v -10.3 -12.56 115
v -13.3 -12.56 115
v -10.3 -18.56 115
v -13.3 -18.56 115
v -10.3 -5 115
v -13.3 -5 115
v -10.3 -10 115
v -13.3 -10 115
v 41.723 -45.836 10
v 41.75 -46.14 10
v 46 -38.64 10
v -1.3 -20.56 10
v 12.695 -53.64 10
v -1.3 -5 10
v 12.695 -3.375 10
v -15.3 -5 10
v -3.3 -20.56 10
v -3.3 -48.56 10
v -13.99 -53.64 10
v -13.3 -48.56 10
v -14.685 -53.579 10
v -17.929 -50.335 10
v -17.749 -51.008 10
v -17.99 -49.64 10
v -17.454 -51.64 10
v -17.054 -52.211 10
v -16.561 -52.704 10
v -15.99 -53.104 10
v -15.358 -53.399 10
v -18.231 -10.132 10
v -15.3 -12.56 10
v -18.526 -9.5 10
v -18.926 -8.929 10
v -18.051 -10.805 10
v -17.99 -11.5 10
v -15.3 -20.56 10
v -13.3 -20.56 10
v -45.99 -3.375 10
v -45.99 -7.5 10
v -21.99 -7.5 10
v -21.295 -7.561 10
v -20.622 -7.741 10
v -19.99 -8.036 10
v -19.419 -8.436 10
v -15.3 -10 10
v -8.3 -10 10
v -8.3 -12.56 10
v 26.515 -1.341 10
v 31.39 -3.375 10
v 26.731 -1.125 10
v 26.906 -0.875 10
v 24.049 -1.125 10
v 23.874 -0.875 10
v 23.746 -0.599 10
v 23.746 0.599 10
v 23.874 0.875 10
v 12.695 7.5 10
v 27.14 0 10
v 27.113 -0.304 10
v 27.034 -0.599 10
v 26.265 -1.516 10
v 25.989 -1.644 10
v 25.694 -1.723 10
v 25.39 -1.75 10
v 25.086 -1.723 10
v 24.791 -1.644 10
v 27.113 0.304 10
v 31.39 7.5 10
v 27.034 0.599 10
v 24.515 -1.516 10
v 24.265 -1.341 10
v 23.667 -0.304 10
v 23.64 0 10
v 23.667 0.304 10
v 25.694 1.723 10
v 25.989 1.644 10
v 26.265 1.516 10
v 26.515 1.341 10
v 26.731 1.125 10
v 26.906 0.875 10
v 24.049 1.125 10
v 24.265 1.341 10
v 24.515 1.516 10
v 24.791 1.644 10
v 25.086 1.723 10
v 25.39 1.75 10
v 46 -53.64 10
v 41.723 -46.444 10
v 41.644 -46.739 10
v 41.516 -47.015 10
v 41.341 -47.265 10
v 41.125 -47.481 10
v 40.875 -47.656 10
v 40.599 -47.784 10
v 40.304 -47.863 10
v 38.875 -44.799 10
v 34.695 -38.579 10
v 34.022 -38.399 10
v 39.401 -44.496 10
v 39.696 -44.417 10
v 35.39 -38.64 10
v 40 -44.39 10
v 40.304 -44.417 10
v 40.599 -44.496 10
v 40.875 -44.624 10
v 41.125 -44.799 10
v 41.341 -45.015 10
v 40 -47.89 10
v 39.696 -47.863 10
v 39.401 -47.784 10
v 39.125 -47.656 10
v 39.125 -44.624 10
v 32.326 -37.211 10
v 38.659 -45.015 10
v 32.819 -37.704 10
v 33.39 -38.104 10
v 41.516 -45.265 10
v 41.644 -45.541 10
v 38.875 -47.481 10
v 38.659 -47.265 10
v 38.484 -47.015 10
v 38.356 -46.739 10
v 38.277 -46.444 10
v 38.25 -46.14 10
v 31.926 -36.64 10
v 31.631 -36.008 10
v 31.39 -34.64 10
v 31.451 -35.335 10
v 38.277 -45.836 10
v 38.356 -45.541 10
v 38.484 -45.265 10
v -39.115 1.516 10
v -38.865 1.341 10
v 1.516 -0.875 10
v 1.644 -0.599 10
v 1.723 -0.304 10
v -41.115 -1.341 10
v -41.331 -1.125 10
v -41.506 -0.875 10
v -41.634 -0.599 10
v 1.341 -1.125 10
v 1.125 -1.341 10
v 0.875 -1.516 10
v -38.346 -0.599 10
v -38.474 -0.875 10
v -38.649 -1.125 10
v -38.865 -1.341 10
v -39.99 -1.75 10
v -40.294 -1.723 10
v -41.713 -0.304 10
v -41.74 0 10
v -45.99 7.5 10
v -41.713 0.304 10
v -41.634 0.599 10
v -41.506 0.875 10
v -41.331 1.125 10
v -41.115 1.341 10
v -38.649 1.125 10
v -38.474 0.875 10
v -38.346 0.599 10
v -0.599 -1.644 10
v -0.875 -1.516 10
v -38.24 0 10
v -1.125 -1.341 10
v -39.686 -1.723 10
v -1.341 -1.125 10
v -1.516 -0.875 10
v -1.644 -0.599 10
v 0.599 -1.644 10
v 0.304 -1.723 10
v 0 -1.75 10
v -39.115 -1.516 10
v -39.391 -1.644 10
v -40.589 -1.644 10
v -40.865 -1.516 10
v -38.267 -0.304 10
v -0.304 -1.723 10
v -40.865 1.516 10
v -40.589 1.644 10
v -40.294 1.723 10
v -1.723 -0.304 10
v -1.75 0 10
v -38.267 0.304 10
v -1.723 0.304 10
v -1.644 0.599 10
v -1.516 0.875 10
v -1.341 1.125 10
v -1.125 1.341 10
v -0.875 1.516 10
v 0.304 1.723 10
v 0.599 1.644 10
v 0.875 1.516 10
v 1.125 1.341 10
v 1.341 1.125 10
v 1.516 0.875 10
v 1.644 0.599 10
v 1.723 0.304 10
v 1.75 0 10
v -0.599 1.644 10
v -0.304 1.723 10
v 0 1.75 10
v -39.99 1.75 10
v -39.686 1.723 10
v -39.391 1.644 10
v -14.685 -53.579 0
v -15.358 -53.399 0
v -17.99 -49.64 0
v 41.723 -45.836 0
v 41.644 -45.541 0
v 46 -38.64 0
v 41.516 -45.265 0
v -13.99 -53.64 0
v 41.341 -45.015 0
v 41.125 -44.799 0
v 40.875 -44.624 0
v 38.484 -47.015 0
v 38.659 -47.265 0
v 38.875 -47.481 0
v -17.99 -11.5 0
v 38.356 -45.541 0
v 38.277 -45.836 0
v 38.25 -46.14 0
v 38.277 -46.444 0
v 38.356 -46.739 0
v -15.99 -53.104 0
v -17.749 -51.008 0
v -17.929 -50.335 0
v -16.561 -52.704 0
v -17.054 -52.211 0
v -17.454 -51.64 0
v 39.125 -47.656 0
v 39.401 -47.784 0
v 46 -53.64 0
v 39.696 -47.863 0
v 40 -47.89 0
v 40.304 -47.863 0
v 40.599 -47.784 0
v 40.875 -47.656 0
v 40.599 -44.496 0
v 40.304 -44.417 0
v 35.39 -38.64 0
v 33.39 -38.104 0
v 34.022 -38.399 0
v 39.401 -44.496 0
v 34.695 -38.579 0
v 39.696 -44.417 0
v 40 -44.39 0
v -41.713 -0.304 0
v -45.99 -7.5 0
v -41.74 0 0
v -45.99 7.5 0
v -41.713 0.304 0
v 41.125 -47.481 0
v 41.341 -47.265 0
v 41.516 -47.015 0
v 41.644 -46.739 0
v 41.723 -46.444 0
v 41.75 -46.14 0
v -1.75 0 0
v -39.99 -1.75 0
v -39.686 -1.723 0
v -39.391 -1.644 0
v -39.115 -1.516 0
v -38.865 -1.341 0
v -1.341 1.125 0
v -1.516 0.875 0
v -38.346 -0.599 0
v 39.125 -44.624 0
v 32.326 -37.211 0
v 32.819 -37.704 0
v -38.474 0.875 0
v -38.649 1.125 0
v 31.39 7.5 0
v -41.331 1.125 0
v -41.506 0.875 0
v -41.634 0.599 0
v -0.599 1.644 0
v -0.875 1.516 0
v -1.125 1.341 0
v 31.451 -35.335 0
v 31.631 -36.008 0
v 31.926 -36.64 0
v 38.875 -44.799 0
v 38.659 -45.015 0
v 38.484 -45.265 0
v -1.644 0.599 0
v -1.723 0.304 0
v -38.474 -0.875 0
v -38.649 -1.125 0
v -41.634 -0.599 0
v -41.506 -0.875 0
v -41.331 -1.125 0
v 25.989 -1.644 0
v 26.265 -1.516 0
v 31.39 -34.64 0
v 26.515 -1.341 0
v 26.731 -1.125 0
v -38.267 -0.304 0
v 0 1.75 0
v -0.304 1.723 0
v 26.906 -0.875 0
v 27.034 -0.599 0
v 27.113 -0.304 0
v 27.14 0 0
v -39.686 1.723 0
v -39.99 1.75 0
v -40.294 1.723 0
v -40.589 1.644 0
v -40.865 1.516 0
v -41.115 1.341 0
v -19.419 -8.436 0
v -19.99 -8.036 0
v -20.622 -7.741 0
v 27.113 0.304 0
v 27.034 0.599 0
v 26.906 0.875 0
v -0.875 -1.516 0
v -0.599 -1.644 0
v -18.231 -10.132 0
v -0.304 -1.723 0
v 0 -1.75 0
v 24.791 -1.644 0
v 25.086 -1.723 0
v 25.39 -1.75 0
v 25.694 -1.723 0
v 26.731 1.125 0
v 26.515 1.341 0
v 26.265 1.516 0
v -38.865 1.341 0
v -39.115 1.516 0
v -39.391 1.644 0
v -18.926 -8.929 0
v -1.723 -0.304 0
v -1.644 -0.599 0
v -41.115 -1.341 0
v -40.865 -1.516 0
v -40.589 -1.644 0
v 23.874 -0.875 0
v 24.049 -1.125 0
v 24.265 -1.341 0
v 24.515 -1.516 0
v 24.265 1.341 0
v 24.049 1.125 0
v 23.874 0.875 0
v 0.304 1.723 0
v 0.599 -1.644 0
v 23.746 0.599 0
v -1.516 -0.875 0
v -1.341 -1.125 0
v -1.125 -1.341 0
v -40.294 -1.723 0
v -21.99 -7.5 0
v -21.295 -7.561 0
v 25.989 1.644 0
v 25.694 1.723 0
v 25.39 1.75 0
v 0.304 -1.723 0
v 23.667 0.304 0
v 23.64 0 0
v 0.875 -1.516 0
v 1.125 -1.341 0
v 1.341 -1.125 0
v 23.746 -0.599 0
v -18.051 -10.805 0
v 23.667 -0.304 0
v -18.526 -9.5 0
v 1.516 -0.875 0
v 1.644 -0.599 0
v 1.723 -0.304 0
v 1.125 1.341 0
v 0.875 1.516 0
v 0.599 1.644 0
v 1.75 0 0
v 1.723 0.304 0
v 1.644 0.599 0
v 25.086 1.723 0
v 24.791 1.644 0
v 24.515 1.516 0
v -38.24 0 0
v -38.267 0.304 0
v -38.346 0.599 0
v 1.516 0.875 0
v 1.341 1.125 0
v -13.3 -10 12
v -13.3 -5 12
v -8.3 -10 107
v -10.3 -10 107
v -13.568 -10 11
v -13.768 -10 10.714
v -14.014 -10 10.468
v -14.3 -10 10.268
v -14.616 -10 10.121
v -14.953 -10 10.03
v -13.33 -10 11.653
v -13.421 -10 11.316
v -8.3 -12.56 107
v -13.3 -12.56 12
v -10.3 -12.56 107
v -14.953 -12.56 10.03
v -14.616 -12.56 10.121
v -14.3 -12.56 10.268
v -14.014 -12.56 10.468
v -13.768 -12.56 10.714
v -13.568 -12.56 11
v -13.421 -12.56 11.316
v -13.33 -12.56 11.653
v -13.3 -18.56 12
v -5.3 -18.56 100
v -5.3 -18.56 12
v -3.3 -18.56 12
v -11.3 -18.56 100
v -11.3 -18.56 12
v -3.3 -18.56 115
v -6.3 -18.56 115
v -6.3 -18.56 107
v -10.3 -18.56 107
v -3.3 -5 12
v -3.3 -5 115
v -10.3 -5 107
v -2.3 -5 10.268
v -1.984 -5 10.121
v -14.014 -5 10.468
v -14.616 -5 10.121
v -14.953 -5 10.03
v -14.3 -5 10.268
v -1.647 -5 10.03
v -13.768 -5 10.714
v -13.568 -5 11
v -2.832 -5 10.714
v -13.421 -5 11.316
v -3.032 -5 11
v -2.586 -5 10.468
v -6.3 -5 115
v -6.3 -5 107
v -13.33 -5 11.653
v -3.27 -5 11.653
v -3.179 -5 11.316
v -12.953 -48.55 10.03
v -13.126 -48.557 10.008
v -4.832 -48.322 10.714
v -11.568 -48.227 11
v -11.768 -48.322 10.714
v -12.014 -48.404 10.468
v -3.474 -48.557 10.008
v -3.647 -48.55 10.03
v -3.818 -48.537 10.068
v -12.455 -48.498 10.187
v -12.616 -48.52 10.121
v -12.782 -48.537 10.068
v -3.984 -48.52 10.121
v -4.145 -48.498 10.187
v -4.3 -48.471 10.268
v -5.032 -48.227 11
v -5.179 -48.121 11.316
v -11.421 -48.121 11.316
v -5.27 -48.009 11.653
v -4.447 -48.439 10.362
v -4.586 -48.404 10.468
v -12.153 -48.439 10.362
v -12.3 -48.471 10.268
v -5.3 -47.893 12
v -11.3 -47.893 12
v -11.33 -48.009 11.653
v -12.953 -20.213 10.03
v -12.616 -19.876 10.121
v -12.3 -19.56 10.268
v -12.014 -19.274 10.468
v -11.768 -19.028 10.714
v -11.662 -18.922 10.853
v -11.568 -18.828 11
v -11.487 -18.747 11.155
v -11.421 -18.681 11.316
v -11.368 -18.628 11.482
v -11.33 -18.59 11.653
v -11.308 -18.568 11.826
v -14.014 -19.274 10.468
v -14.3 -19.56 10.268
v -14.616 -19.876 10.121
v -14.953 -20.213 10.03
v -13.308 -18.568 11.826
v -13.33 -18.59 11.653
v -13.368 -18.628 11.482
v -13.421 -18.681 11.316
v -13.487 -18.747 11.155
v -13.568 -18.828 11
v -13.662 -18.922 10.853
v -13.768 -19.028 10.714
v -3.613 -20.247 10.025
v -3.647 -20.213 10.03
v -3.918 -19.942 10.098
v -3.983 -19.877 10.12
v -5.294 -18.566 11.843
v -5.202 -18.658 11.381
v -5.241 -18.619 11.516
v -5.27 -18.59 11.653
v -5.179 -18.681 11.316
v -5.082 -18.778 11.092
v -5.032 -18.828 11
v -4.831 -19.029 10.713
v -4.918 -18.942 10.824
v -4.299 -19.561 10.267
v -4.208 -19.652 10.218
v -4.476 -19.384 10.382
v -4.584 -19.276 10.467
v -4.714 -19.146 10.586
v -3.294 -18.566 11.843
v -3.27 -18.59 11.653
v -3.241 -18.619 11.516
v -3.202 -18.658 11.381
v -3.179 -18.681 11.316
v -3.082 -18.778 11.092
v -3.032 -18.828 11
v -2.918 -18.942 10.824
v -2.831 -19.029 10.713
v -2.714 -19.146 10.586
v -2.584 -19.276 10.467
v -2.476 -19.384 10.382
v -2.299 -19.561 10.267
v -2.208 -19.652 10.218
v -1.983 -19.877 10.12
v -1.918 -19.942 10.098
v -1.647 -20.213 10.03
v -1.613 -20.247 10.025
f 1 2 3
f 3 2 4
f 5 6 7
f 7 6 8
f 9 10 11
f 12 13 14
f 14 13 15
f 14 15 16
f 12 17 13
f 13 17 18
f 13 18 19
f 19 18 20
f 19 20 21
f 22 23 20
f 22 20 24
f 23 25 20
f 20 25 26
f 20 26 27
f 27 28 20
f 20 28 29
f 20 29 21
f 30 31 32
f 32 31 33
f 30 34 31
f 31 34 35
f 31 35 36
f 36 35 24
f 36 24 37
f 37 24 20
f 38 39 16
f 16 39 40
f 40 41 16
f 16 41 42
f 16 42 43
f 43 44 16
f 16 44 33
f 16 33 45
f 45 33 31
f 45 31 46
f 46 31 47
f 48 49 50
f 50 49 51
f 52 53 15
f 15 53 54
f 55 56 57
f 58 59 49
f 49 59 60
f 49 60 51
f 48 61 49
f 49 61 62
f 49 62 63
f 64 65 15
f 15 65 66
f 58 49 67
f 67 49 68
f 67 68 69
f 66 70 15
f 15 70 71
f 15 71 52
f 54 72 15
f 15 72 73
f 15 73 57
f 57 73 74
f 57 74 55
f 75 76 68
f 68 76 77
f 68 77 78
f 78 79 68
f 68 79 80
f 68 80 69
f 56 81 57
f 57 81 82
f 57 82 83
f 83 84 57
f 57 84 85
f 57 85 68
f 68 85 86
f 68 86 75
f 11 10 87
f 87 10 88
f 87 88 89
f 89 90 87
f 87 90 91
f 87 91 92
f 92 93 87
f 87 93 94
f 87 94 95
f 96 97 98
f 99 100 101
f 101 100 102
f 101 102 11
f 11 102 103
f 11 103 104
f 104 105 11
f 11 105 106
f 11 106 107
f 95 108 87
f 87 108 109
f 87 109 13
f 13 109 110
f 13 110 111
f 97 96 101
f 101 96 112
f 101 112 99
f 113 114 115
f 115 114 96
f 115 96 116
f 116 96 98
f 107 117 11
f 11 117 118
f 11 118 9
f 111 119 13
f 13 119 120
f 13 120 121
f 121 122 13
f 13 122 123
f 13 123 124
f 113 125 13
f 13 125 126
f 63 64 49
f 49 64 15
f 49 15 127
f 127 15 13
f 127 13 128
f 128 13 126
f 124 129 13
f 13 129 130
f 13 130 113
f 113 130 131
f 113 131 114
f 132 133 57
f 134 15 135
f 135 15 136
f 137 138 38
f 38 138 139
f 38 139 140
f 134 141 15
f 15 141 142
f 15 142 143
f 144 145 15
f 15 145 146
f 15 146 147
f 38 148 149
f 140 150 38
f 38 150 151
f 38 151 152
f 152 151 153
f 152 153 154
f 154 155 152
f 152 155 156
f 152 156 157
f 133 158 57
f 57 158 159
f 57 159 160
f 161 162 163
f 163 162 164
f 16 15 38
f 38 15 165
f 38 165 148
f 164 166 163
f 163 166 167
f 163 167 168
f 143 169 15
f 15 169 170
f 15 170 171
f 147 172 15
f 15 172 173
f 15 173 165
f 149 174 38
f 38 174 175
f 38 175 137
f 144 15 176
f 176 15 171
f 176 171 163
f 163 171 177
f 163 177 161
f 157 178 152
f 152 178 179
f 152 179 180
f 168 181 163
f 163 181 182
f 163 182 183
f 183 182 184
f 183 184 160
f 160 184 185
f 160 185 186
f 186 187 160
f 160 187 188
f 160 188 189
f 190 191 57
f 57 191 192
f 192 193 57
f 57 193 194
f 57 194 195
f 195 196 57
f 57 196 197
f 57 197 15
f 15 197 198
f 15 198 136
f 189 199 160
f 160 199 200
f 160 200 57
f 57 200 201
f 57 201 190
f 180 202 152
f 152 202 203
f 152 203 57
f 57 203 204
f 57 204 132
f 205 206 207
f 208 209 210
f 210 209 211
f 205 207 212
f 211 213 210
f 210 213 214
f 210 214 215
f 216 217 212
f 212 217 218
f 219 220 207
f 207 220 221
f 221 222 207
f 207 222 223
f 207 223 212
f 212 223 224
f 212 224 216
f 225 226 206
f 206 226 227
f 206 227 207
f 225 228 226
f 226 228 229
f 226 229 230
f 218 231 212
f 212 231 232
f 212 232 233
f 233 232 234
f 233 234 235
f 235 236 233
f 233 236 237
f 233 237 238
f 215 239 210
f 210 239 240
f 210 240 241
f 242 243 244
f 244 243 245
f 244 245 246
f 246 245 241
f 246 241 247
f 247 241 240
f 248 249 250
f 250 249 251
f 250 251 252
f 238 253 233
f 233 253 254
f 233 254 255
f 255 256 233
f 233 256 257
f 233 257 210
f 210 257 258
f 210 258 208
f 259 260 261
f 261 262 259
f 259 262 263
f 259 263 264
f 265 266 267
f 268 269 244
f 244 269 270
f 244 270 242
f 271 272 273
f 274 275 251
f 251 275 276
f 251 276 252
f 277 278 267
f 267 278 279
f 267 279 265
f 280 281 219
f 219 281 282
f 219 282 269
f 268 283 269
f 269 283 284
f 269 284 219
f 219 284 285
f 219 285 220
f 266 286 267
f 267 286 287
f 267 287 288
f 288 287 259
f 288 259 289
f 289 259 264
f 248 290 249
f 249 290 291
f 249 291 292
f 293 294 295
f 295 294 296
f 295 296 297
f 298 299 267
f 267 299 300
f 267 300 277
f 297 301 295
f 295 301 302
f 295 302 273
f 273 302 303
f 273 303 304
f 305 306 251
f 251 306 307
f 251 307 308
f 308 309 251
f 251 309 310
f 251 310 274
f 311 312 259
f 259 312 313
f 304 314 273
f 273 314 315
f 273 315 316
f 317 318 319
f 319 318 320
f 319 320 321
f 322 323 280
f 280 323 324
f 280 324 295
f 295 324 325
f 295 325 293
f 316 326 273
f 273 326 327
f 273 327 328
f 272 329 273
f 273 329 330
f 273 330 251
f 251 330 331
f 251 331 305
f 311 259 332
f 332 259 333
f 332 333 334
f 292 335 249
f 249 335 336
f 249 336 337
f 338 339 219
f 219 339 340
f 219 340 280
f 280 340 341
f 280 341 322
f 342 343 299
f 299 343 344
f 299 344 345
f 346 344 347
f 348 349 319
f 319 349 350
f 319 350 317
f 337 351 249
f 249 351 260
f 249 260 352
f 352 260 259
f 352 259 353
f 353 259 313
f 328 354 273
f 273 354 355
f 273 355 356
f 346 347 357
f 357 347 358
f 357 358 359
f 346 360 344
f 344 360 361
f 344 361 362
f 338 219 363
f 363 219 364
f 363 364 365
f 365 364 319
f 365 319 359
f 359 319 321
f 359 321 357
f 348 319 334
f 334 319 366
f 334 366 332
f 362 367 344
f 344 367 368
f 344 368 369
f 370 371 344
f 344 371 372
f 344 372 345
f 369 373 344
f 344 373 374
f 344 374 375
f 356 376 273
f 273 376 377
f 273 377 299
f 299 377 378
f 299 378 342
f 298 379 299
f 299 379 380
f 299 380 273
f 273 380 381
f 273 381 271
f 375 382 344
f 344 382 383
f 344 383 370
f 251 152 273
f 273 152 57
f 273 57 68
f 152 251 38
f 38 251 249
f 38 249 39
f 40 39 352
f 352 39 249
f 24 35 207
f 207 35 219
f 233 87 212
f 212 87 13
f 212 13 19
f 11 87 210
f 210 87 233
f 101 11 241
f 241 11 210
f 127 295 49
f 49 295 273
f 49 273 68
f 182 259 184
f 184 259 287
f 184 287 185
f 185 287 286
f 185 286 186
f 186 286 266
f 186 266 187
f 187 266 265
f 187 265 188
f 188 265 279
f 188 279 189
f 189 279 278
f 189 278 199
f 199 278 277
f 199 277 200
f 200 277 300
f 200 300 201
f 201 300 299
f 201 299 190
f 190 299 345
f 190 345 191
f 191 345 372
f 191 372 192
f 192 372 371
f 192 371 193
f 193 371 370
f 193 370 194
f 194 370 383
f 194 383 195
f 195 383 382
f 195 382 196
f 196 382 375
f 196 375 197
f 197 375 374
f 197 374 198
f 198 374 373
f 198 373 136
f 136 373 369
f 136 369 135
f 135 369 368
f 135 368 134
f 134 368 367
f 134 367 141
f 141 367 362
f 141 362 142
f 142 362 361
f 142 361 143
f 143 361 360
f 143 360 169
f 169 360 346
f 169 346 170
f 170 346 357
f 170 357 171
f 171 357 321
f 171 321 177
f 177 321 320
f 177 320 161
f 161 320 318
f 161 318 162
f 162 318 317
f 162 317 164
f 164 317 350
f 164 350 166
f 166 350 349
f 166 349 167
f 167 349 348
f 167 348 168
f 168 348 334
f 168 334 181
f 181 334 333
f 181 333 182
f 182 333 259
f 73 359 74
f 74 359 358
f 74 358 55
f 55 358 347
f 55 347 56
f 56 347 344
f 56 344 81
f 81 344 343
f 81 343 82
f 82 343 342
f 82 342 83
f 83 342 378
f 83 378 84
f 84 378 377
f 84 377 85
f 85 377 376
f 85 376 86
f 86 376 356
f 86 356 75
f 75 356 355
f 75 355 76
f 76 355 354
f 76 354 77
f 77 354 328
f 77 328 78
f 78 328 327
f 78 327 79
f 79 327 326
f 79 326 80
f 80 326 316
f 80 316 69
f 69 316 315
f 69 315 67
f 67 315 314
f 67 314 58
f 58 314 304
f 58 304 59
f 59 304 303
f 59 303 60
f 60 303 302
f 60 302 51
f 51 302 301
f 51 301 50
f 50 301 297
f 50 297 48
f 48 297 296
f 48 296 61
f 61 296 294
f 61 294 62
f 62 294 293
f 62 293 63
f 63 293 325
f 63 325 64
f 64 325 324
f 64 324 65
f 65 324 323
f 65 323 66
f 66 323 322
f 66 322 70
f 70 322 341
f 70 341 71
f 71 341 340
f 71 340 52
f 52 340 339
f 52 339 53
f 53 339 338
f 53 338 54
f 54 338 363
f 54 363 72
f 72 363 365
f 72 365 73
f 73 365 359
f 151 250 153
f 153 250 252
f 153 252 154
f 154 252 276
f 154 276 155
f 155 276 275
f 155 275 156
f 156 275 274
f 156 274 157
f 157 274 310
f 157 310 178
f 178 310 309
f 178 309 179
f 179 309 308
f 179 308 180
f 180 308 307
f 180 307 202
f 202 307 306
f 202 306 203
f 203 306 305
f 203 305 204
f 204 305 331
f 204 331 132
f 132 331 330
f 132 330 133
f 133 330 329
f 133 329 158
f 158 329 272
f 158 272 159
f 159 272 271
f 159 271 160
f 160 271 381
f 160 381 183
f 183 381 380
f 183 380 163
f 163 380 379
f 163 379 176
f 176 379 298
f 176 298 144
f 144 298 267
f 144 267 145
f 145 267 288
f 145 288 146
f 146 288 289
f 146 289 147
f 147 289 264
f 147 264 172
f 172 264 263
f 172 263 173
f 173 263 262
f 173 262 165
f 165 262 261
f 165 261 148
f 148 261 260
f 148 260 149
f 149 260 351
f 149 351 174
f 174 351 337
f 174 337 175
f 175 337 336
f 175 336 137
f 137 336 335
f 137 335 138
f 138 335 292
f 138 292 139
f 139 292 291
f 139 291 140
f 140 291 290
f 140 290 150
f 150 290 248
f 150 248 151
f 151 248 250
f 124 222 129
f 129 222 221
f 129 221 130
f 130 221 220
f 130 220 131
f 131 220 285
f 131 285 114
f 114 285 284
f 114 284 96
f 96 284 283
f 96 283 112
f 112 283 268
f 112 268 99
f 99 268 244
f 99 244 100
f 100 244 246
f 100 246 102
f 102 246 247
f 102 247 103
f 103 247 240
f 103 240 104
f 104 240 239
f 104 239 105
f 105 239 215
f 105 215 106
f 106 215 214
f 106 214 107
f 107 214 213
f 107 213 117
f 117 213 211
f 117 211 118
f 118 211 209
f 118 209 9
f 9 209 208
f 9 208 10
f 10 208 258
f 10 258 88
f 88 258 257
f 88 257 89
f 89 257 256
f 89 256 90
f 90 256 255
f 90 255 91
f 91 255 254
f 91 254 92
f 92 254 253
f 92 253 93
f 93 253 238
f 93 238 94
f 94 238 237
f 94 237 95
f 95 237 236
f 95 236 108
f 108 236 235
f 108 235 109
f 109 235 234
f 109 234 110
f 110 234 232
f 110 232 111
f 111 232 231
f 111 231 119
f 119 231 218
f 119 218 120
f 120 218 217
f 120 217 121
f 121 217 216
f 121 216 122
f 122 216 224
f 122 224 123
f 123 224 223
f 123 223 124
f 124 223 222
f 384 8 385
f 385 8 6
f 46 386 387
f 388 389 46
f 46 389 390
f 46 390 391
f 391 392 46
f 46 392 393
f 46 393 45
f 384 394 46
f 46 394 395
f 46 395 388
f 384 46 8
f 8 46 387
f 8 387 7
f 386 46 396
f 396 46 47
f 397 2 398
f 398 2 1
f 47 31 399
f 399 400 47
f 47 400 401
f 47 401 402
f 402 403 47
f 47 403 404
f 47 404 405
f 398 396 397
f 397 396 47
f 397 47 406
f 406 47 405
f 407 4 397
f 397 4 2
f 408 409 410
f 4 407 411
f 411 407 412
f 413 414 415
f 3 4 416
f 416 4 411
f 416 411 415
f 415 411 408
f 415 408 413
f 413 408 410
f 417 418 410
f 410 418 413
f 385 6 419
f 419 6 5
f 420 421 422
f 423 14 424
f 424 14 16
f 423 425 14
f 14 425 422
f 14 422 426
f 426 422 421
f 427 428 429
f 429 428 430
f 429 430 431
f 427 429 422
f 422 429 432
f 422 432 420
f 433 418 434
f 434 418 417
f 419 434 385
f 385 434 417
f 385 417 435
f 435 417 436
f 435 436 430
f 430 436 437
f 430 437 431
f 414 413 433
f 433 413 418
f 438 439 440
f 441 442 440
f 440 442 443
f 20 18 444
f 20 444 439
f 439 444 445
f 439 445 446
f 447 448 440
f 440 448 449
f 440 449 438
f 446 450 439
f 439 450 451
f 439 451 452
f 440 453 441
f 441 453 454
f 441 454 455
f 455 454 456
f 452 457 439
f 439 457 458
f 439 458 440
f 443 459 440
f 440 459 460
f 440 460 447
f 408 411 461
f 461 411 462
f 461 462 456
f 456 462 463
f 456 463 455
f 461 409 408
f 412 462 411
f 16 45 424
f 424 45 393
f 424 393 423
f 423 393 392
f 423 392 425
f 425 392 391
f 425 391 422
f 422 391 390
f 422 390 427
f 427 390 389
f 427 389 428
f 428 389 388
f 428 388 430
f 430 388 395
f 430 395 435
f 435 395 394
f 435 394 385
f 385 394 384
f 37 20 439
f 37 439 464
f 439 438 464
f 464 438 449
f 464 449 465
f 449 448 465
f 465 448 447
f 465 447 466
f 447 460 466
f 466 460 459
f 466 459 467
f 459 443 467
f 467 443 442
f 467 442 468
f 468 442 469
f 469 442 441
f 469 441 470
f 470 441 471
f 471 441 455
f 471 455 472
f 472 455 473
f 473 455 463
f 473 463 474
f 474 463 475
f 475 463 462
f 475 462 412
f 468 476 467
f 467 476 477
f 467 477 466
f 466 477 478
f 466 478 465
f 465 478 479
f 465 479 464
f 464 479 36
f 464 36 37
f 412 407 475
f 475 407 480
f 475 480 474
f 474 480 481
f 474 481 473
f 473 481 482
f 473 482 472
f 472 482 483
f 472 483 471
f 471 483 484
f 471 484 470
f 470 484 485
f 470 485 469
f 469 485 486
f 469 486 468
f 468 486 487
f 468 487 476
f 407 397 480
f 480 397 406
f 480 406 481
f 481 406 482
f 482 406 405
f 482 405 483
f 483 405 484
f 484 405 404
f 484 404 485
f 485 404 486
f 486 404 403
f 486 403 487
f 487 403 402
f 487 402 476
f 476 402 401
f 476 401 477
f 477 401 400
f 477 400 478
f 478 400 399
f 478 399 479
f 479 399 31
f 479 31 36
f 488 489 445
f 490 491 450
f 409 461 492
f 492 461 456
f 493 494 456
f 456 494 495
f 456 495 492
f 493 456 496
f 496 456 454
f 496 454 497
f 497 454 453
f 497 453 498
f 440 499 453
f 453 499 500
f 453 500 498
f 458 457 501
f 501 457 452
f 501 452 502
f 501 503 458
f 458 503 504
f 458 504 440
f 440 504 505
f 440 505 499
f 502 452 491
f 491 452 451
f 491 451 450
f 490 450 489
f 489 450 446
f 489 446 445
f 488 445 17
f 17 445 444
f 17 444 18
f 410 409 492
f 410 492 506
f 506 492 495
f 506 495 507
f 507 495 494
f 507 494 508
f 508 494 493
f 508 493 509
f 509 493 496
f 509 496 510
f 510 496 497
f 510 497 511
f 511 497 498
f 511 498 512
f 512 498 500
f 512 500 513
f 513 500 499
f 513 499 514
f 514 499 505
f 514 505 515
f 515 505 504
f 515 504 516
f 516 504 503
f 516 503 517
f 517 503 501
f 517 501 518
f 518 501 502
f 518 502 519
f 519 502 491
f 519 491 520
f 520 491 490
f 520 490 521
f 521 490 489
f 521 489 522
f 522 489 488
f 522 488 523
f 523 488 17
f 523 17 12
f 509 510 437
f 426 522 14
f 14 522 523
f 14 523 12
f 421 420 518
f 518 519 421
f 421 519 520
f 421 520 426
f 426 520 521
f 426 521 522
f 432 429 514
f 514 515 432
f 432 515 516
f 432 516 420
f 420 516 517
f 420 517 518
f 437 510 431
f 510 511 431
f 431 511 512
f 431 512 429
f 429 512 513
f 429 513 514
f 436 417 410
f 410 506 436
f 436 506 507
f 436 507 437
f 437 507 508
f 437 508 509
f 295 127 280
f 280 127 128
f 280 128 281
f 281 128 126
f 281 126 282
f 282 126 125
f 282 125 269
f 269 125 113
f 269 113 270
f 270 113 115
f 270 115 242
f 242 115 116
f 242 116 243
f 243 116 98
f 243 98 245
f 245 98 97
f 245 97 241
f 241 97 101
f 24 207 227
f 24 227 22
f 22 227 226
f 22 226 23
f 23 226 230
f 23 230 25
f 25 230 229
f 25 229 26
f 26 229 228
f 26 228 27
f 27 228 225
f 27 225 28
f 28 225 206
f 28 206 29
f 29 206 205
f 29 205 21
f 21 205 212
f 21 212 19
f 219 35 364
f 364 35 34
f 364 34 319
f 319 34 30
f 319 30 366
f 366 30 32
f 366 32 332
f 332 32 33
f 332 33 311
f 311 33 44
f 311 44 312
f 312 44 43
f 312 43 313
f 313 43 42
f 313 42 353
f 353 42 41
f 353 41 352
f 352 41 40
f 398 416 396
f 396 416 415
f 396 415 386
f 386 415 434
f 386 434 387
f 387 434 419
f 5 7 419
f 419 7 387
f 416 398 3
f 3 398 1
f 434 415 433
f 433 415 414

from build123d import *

# Parameters (mm, degrees)
SKETCH1_R           = 1.75
BOSS_EXTRUDE1_DEPTH = 10
BOSS_EXTRUDE2_DEPTH = 105
RIB1_REACH          = 140.024
SKETCH3_WALL_W      = 372.917163166
SKETCH3_WALL_H      = 6
FILLET1_R           = 2
FILLET2_R           = 4
SKETCH4_W           = 4
SKETCH4_H           = 13.56
CUT_EXTRUDE1_DEPTH  = 8


with BuildPart() as part:
    # Sketch1 → Boss-Extrude1 (new body)
    with BuildSketch(Plane.XY):
        Polygon((-45.99, 7.5), (-45.99, -7.5), (-17.99, -7.5), (-17.99, -53.64), (46, -53.64), (46, -38.64), (31.39, -38.64), (31.39, 7.5), align=None)
        Circle(SKETCH1_R, mode=Mode.SUBTRACT)
        with Locations((25.39, 0)):
            Circle(SKETCH1_R, mode=Mode.SUBTRACT)
        with Locations((-39.99, 0)):
            Circle(SKETCH1_R, mode=Mode.SUBTRACT)
        with Locations((40, -46.14)):
            Circle(SKETCH1_R, mode=Mode.SUBTRACT)
    extrude(amount=BOSS_EXTRUDE1_DEPTH)

    # Sketch2 → Boss-Extrude2 (add)
    with BuildSketch(Plane.XY.offset(10)):
        Polygon((-13.3, -5), (-3.3, -5), (-3.3, -18.56), (-13.3, -18.56), (-13.3, -12.56), (-8.3, -12.56), (-8.3, -10), (-13.3, -10), align=None)
    extrude(amount=BOSS_EXTRUDE2_DEPTH)

    # Sketch3 wall → Rib1 (add, up to next)
    with BuildSketch(Plane(origin=(-8.3, -33.56, 55), x_dir=(0, 0.316227766017, 0.948683298051), z_dir=(0, -0.948683298051, 0.316227766017)), mode=Mode.PRIVATE) as rib1_sk1:
        Rectangle(SKETCH3_WALL_W, SKETCH3_WALL_H)
    rib1_tool1 = extrude(rib1_sk1.sketch, amount=-RIB1_REACH, mode=Mode.PRIVATE) - part.part
    add(rib1_tool1.solids().sort_by_distance((-8.3, -33.56, 55))[0])

    # Fillet1
    fillet1_edges = [part.edges().sort_by_distance(p)[0] for p in [
        (-13.3, -7.5, 10),
        (-13.3, -15.56, 10),
        (-12.3, -18.56, 10),
        (-11.3, -33.56, 10),
        (-3.3, -11.78, 10),
        (-4.3, -18.56, 10),
        (-5.3, -33.56, 10),
    ]]
    fillet(fillet1_edges, radius=FILLET1_R)

    # Fillet2
    fillet2_edges = [part.edges().sort_by_distance(p)[0] for p in [
        (31.39, -38.64, 5),
        (-17.99, -53.64, 5),
        (-17.99, -7.5, 5),
    ]]
    fillet(fillet2_edges, radius=FILLET2_R)

    # Sketch4 → Cut-Extrude1 (cut)
    with BuildSketch(Plane.XY.offset(115)):
        with Locations((-8.3, -11.78)):
            Rectangle(SKETCH4_W, SKETCH4_H)
    extrude(amount=-CUT_EXTRUDE1_DEPTH, mode=Mode.SUBTRACT)


solid = part.part
